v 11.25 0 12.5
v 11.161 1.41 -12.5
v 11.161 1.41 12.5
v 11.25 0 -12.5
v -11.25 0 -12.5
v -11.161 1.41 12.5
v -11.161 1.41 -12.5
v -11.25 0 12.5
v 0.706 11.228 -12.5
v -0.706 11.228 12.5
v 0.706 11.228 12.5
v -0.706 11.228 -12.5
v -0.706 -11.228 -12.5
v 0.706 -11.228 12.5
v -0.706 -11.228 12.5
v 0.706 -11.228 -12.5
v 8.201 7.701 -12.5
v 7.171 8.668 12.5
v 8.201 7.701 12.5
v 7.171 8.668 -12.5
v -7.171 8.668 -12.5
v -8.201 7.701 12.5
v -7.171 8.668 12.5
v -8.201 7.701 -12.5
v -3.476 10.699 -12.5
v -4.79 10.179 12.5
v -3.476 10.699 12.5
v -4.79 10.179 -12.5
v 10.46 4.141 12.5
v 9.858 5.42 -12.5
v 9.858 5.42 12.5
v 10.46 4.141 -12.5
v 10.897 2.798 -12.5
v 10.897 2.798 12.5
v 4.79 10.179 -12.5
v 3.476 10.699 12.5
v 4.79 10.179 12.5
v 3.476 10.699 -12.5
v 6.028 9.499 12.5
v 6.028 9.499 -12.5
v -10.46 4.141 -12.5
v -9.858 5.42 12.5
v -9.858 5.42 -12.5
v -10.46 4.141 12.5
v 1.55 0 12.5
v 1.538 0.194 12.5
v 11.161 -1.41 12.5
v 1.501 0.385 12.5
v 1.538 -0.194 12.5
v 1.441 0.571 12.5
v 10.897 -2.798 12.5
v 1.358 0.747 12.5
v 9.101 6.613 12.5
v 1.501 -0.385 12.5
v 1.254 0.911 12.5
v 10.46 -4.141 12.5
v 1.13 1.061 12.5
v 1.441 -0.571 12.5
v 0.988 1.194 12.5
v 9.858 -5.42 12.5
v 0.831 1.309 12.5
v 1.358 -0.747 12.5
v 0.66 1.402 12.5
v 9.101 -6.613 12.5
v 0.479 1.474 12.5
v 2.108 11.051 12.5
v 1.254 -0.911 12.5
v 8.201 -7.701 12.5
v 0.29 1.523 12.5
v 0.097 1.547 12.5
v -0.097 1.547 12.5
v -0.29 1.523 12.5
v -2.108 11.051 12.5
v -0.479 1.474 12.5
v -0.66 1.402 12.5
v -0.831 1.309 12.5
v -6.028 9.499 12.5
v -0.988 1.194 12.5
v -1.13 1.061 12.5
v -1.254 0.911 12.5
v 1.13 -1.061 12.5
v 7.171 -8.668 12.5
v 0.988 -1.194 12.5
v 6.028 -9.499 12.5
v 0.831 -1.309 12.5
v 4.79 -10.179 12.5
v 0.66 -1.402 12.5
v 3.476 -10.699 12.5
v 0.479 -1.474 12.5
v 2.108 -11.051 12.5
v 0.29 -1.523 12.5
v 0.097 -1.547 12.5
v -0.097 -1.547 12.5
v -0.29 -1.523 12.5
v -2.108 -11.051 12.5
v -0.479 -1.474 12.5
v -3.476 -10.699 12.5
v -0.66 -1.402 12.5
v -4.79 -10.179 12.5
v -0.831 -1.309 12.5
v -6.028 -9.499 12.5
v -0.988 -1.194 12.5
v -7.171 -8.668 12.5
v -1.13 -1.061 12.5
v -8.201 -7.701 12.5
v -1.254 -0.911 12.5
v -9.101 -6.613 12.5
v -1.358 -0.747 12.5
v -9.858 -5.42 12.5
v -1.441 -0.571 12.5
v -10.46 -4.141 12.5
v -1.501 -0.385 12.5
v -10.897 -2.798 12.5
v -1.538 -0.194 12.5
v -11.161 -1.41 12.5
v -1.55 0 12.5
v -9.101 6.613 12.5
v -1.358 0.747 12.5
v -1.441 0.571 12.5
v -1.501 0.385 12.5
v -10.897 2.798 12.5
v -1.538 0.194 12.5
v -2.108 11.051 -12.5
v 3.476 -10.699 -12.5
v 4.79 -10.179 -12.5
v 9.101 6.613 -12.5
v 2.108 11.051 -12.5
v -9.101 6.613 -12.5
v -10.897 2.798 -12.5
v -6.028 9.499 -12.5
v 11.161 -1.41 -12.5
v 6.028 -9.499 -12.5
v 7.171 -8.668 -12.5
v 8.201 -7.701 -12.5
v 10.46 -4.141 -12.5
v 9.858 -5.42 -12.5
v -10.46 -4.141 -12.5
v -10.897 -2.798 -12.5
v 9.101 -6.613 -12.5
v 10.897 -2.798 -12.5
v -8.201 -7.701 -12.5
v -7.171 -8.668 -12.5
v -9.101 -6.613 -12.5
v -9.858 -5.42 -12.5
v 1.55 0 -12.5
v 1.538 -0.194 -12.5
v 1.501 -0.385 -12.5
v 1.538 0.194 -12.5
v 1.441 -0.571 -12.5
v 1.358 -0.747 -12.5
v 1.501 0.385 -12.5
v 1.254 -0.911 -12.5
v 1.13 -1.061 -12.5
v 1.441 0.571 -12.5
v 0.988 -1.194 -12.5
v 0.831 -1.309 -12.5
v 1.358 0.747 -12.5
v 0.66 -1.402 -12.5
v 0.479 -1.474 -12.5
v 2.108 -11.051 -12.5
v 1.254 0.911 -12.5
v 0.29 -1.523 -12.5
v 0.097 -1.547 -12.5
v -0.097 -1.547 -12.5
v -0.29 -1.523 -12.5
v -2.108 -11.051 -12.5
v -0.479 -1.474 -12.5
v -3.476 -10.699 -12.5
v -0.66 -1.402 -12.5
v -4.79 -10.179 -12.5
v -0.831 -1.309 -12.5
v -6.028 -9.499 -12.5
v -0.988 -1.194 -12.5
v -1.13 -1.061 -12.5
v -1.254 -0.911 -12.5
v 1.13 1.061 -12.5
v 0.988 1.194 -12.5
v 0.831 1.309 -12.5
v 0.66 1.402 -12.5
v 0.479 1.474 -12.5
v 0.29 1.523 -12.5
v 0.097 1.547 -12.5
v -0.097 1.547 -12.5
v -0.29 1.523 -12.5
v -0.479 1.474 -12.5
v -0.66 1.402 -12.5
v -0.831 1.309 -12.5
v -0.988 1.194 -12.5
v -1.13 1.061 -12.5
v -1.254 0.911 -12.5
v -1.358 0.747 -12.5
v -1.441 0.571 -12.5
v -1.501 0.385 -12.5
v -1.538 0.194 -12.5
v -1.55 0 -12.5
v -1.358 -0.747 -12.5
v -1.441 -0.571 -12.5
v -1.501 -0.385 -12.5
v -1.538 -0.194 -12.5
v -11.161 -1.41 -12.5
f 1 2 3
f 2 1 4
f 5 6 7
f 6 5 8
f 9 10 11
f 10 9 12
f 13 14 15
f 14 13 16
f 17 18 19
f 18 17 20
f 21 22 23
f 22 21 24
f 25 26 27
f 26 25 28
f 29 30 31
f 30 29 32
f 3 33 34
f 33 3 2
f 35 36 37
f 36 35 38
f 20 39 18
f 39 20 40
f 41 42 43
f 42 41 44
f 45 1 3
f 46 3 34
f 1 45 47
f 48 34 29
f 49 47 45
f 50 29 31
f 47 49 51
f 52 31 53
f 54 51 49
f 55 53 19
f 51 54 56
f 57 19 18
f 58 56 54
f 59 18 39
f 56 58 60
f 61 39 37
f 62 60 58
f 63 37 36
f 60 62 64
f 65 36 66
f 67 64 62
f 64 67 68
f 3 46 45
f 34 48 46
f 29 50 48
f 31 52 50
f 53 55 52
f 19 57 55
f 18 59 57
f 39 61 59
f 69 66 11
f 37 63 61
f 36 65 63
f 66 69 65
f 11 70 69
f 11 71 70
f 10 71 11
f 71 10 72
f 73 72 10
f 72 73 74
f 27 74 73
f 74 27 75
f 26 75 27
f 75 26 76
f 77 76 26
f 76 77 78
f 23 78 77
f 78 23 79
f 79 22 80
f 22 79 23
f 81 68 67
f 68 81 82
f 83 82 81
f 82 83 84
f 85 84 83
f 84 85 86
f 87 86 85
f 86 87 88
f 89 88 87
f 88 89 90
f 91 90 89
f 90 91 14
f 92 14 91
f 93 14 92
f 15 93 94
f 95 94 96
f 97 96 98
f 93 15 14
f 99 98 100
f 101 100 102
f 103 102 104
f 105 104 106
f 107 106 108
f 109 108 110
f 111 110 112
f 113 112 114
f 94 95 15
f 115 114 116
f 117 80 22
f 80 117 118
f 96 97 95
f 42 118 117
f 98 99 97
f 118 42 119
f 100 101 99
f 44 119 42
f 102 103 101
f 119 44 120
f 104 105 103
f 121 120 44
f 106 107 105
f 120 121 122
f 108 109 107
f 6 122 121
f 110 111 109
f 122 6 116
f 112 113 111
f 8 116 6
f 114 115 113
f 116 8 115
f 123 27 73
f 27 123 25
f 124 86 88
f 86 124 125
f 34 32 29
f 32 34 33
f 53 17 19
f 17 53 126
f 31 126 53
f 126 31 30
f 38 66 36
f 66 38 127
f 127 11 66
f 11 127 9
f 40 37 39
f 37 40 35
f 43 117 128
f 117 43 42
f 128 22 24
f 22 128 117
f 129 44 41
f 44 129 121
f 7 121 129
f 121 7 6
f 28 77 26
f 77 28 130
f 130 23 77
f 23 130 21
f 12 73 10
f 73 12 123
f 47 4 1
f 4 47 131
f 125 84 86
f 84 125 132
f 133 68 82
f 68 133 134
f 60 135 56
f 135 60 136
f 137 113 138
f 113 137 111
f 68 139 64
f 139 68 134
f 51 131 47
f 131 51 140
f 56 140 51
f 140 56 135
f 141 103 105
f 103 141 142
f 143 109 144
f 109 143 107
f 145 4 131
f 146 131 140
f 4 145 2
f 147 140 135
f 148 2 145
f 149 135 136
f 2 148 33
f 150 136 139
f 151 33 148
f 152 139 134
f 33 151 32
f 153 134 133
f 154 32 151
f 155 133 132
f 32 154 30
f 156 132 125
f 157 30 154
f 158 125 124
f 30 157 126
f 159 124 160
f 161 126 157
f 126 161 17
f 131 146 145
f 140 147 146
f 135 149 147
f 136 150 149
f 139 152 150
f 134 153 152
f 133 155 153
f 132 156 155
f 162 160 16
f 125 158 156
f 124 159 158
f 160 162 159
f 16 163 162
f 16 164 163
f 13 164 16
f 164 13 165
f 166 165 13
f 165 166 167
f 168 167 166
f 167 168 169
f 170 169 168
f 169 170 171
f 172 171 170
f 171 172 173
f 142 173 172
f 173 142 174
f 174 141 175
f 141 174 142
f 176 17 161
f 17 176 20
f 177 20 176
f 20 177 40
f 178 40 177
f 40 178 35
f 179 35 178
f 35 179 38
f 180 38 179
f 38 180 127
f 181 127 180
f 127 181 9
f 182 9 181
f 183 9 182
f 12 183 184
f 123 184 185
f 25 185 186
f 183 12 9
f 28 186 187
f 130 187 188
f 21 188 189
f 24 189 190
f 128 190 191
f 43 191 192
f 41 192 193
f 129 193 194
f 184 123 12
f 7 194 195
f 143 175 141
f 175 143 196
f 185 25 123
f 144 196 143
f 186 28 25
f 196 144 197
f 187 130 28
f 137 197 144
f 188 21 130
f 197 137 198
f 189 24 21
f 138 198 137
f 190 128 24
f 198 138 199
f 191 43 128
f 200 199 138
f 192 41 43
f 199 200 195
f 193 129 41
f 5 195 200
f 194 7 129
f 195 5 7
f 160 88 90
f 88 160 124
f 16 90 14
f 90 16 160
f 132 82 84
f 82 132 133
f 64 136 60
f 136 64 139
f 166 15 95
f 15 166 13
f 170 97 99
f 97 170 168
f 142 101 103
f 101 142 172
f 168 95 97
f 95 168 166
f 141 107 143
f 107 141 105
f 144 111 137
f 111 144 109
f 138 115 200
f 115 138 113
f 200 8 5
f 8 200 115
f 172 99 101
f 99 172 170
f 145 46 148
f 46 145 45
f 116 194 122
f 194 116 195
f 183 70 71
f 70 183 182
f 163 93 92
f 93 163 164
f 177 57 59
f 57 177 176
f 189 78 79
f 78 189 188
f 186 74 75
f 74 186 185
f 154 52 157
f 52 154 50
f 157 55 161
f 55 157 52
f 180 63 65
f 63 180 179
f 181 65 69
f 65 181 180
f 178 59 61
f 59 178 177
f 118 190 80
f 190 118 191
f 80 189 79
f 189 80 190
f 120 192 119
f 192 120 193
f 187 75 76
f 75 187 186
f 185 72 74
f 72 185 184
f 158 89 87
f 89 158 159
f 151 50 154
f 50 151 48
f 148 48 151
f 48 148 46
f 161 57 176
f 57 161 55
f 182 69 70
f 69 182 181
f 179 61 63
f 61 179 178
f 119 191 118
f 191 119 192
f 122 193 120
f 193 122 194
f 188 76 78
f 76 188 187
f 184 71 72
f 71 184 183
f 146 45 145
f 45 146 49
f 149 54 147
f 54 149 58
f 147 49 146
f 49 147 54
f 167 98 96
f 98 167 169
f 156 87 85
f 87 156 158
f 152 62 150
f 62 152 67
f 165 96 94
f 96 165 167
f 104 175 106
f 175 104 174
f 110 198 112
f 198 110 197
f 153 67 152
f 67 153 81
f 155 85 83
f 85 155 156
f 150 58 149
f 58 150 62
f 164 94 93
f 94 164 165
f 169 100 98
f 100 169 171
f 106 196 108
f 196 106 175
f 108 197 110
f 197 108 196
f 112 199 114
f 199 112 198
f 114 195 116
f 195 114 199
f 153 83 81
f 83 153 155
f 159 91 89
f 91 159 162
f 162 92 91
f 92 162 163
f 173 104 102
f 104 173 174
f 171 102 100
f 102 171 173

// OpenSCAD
$fn = 50;


difference() {
	union() {
		translate(v = [0, 0, -12.5000000000]) {
			cylinder(h = 25, r = 11.2500000000);
		}
	}
	union() {
		translate(v = [0, 0, -100.0000000000]) {
			cylinder(h = 200, r = 1.5500000000);
		}
	}
}
